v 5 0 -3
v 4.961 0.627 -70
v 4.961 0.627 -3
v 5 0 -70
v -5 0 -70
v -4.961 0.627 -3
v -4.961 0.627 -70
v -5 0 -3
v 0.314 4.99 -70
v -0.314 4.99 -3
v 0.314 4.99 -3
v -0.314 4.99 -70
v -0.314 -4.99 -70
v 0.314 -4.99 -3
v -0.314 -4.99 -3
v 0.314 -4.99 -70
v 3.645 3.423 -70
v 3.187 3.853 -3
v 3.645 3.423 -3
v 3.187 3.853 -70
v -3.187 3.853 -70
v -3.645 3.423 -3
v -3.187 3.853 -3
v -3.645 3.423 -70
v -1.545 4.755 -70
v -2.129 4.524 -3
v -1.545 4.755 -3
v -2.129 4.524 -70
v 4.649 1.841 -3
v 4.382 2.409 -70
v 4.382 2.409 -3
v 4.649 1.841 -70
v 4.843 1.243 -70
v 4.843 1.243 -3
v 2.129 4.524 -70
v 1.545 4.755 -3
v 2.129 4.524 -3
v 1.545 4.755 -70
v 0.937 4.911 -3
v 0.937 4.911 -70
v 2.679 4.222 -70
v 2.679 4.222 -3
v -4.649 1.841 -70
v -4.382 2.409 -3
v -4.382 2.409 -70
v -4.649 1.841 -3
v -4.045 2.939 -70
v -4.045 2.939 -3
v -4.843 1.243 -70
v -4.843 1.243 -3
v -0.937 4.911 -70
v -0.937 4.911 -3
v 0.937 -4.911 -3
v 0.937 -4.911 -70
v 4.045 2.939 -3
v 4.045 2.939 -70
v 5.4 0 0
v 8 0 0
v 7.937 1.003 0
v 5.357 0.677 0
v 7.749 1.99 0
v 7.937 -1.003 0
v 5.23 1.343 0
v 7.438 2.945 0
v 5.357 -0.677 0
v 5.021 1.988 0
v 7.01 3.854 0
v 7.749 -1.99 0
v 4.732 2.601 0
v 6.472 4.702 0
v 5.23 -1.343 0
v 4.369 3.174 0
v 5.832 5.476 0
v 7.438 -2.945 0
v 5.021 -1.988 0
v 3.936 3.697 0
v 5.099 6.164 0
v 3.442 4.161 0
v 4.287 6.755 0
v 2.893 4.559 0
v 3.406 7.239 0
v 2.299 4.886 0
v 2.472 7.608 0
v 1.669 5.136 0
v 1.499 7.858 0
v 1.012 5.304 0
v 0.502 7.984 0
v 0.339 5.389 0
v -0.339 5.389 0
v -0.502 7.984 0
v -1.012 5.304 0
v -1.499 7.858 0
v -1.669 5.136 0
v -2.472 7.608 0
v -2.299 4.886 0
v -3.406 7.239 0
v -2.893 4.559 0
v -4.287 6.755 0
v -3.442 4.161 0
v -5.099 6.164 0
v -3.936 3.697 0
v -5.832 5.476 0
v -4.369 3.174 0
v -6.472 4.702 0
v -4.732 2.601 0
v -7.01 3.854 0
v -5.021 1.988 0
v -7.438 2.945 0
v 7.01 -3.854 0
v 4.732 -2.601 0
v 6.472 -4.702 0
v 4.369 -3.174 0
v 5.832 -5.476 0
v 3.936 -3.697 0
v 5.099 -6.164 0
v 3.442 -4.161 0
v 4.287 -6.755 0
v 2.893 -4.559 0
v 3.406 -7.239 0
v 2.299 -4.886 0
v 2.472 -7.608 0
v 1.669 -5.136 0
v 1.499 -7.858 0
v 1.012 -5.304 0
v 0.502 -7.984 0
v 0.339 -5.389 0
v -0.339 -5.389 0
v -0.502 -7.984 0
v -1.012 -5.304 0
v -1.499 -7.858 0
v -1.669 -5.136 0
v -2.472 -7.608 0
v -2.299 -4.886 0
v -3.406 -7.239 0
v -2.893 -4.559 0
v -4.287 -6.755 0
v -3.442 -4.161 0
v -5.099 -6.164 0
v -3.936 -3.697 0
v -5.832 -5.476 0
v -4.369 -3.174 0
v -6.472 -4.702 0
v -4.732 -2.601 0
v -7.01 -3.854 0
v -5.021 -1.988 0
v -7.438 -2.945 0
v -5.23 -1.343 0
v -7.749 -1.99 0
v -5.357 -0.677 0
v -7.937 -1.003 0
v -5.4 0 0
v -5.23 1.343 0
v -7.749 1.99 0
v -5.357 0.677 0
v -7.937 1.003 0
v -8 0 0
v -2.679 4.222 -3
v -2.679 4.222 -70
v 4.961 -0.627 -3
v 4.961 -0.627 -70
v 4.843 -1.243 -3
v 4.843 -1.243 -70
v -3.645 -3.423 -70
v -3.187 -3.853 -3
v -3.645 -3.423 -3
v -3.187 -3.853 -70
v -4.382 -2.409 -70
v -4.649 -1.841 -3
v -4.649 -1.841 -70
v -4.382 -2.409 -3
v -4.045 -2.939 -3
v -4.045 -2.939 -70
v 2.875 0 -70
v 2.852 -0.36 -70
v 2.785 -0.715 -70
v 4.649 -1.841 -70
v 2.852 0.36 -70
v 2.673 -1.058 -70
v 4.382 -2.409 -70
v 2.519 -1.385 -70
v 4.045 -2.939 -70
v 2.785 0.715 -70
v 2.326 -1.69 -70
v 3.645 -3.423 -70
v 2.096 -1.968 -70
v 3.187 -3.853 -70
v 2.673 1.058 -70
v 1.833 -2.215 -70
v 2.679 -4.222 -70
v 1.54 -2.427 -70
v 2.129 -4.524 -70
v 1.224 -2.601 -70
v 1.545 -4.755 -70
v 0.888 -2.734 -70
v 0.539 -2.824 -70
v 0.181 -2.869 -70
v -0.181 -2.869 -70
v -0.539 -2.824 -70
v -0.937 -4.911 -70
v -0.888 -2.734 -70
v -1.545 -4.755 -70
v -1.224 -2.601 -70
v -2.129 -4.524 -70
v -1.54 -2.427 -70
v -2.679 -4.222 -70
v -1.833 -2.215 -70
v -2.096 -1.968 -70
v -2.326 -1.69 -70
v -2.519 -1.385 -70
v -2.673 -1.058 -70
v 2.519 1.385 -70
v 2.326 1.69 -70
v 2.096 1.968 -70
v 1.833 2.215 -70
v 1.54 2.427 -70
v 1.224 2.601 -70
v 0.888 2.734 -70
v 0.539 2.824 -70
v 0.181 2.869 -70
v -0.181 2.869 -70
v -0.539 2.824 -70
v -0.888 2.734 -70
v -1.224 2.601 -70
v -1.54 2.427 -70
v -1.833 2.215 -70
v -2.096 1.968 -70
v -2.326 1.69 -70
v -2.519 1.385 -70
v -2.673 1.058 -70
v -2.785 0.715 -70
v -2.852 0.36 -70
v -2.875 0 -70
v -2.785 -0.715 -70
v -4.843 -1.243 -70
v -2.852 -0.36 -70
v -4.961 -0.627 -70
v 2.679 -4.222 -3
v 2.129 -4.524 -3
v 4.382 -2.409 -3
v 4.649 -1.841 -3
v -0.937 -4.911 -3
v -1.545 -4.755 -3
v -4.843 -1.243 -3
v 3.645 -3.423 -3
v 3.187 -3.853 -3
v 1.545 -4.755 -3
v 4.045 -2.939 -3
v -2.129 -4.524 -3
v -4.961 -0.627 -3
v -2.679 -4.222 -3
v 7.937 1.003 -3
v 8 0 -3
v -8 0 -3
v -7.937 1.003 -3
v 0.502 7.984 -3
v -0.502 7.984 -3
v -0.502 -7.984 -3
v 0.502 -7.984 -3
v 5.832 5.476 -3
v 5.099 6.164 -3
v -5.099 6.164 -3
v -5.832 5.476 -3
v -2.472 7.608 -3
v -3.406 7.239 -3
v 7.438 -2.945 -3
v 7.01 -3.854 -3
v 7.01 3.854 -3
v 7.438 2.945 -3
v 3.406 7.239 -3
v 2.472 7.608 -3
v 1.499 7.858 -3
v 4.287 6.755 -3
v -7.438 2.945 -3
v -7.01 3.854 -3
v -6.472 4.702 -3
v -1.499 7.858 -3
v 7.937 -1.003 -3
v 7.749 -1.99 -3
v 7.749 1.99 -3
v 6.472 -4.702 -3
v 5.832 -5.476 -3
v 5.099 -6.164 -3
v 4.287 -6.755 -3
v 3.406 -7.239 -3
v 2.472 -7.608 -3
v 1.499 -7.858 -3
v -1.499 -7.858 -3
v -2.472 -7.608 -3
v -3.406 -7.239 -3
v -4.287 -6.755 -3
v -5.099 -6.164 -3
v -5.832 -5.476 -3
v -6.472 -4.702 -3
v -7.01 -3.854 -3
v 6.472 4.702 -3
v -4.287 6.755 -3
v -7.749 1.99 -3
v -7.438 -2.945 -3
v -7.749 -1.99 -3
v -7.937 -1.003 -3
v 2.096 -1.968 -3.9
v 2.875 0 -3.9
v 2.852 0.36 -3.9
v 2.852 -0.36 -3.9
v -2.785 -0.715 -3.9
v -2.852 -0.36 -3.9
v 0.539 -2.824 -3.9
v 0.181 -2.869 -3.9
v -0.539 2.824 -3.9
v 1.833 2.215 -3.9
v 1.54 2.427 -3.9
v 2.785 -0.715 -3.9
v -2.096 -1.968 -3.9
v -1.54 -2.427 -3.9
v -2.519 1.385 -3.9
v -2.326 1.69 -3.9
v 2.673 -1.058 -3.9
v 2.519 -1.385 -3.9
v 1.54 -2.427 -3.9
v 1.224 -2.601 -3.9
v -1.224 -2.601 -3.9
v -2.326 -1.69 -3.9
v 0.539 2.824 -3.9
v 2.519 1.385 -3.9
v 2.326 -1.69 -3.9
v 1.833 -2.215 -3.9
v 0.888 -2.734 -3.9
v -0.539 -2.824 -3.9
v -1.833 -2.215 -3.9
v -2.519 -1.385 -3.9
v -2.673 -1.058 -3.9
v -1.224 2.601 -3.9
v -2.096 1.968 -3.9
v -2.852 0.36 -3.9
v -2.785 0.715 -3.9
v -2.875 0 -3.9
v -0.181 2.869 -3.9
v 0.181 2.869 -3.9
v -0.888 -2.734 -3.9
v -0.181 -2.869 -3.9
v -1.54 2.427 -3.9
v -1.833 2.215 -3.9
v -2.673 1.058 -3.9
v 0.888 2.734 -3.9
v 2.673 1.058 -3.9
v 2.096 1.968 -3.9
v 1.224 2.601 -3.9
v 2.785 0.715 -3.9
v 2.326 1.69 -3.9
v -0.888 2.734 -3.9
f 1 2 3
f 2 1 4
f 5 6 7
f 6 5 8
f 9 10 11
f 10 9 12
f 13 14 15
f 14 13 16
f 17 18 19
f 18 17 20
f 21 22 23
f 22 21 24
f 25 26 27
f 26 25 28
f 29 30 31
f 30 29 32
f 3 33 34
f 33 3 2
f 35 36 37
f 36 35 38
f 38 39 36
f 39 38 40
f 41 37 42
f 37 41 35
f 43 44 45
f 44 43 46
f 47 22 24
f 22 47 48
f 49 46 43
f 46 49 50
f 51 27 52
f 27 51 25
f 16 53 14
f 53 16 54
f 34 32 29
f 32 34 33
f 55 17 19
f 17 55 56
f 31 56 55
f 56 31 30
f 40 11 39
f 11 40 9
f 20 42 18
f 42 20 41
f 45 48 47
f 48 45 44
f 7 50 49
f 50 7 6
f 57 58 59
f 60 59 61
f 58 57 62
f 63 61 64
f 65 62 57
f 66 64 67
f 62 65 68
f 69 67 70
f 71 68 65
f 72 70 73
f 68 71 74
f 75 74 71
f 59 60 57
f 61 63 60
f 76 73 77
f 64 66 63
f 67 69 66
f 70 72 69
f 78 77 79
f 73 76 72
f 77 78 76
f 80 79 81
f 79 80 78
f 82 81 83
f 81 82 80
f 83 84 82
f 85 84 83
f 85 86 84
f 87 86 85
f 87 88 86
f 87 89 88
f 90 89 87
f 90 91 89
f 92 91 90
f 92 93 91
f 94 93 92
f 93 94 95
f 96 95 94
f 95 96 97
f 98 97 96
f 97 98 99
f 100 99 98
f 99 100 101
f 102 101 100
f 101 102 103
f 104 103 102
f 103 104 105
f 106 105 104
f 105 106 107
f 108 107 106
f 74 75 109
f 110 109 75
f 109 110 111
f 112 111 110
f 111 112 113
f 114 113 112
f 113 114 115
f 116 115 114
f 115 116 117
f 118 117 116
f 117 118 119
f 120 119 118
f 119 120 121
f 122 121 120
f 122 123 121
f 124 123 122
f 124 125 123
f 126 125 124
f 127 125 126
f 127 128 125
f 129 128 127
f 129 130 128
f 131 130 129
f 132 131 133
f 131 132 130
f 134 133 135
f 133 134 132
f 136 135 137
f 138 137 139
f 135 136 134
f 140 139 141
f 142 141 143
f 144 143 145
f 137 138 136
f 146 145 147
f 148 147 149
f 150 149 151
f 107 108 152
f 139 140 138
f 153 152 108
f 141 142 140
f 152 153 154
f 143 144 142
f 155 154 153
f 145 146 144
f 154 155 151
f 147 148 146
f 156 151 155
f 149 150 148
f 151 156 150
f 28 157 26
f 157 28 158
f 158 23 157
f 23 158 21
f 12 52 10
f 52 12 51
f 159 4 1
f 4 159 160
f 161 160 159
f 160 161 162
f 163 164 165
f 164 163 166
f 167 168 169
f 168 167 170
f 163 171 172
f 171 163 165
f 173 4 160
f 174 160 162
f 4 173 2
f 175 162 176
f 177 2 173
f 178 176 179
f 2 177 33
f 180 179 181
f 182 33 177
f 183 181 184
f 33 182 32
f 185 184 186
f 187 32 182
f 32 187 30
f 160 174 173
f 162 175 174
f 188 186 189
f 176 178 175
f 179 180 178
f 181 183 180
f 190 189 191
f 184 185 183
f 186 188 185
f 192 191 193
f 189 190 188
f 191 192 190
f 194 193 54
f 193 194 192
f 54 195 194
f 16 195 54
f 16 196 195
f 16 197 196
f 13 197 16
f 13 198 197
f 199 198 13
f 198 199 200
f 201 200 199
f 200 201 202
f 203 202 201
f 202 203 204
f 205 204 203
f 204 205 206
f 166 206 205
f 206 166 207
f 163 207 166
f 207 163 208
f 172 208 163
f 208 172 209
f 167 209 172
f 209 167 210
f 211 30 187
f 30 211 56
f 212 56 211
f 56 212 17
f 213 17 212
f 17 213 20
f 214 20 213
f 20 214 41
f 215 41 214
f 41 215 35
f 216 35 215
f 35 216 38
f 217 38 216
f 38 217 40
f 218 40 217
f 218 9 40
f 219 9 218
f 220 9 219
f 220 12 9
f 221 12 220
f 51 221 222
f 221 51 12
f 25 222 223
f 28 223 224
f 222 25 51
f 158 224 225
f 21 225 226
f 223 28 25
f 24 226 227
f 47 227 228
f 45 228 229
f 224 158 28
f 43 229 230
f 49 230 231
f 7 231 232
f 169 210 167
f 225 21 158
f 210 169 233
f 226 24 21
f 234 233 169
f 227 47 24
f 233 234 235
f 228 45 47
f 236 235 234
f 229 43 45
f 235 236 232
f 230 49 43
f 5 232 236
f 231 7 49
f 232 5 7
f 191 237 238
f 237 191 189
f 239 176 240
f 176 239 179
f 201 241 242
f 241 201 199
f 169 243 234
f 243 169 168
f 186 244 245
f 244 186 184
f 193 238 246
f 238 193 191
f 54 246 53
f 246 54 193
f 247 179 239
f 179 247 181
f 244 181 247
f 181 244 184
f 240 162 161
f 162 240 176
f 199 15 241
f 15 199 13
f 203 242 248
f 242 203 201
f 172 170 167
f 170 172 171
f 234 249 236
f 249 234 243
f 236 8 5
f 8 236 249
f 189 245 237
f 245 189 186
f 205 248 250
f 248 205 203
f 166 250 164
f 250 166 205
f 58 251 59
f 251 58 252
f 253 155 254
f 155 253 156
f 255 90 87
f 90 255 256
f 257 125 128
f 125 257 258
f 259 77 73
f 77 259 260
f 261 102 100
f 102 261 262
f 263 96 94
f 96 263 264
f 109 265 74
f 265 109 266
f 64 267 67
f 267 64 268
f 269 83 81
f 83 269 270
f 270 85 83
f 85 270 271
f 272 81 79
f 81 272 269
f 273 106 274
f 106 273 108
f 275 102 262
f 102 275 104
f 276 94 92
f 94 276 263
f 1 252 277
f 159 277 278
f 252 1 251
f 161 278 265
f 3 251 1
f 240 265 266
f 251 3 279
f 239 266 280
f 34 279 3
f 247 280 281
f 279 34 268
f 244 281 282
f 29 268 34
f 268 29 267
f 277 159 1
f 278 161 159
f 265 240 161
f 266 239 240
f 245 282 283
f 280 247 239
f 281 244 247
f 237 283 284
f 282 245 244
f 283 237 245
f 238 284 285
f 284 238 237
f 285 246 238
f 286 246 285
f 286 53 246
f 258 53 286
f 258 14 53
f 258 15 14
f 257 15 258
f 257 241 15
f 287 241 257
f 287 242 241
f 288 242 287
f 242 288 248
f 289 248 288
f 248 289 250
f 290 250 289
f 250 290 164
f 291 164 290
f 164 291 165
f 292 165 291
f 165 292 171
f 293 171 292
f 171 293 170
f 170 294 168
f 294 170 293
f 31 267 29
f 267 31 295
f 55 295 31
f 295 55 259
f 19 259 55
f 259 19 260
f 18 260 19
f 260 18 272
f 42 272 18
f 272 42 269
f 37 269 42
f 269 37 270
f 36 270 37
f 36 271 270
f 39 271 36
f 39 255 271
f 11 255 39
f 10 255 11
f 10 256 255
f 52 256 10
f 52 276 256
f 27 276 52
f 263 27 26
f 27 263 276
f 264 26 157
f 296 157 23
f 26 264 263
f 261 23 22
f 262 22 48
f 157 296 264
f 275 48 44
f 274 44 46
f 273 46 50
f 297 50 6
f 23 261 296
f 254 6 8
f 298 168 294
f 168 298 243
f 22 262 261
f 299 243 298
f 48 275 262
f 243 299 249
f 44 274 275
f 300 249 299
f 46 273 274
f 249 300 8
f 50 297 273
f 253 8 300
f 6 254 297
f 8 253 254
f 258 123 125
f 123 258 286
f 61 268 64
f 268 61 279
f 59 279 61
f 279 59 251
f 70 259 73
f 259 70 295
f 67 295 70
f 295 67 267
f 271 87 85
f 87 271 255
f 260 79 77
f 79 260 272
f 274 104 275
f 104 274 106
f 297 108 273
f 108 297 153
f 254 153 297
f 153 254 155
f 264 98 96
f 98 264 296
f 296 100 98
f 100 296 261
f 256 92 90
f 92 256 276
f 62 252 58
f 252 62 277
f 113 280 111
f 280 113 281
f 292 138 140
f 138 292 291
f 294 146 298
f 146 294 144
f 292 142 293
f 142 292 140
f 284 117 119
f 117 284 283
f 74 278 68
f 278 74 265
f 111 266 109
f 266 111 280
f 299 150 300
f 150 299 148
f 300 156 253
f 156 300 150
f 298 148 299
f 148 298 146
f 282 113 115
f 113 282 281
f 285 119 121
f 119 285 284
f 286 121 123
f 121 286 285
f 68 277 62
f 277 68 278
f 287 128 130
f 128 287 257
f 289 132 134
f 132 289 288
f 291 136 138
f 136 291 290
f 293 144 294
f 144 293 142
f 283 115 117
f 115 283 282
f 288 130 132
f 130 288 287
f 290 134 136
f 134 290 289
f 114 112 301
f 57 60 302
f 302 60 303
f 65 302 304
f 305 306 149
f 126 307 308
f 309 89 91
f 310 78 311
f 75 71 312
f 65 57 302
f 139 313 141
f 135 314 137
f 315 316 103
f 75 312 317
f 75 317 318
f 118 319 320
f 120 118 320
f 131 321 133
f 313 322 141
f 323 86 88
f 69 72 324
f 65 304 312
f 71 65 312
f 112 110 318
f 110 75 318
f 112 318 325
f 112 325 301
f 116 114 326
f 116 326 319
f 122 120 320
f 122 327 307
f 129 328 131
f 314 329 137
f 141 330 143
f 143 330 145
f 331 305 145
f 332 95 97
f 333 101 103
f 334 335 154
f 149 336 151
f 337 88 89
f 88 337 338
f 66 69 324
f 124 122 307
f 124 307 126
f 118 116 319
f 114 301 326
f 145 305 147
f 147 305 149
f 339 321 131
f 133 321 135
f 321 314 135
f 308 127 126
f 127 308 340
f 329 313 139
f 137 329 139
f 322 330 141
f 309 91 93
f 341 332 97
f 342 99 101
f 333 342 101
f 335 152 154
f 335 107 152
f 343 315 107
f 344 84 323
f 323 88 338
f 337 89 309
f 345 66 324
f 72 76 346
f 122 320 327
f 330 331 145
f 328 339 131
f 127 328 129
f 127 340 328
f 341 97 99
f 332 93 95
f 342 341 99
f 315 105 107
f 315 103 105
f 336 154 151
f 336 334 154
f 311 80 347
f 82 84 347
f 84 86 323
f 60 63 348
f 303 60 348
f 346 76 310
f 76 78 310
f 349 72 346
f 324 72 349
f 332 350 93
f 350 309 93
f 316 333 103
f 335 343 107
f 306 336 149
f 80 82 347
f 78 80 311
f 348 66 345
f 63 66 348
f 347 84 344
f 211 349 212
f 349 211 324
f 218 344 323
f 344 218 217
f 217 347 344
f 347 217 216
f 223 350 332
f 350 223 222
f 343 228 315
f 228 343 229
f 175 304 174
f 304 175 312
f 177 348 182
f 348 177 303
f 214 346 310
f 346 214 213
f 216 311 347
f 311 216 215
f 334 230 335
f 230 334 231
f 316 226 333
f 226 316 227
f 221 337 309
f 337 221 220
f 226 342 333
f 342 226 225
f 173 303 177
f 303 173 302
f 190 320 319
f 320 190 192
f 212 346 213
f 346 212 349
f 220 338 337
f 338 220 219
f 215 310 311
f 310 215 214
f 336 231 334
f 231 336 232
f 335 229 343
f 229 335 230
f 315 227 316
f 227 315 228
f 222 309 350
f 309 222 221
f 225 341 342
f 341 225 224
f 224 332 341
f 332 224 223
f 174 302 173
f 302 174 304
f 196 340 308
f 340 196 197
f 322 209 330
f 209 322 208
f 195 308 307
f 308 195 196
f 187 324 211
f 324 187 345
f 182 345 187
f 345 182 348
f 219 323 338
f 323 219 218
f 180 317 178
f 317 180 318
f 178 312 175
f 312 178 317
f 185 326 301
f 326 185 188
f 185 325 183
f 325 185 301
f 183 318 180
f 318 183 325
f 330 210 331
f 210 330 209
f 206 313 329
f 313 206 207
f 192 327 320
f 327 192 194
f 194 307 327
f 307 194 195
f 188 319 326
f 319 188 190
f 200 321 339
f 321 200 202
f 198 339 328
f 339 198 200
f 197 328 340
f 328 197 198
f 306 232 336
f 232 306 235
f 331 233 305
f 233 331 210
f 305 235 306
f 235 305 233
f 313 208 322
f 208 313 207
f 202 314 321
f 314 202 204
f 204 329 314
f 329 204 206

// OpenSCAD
$fn = 50;


difference() {
	union() {
		translate(v = [0, 0, -70.0000000000]) {
			cylinder(h = 70, r = 5.0000000000);
		}
		translate(v = [0, 0, -3.0000000000]) {
			cylinder(h = 3, r = 8.0000000000);
		}
	}
	union() {
		translate(v = [0, 0, 0]) {
			rotate(a = [0, 0, 0]) {
				difference() {
					union() {
						#translate(v = [0, 0, -70.0000000000]) {
							cylinder(h = 70, r = 2.6000000000);
						}
						#translate(v = [0, 0, -3.9000000000]) {
							cylinder(h = 3.9000000000, r = 5.0000000000, r1 = 2.8750000000, r2 = 5.4000000000);
						}
						#translate(v = [0, 0, -70.0000000000]) {
							cylinder(h = 70, r = 2.8750000000);
						}
						#translate(v = [0, 0, -70.0000000000]) {
							cylinder(h = 70, r = 2.6000000000);
						}
					}
					union();
				}
			}
		}
	}
}
